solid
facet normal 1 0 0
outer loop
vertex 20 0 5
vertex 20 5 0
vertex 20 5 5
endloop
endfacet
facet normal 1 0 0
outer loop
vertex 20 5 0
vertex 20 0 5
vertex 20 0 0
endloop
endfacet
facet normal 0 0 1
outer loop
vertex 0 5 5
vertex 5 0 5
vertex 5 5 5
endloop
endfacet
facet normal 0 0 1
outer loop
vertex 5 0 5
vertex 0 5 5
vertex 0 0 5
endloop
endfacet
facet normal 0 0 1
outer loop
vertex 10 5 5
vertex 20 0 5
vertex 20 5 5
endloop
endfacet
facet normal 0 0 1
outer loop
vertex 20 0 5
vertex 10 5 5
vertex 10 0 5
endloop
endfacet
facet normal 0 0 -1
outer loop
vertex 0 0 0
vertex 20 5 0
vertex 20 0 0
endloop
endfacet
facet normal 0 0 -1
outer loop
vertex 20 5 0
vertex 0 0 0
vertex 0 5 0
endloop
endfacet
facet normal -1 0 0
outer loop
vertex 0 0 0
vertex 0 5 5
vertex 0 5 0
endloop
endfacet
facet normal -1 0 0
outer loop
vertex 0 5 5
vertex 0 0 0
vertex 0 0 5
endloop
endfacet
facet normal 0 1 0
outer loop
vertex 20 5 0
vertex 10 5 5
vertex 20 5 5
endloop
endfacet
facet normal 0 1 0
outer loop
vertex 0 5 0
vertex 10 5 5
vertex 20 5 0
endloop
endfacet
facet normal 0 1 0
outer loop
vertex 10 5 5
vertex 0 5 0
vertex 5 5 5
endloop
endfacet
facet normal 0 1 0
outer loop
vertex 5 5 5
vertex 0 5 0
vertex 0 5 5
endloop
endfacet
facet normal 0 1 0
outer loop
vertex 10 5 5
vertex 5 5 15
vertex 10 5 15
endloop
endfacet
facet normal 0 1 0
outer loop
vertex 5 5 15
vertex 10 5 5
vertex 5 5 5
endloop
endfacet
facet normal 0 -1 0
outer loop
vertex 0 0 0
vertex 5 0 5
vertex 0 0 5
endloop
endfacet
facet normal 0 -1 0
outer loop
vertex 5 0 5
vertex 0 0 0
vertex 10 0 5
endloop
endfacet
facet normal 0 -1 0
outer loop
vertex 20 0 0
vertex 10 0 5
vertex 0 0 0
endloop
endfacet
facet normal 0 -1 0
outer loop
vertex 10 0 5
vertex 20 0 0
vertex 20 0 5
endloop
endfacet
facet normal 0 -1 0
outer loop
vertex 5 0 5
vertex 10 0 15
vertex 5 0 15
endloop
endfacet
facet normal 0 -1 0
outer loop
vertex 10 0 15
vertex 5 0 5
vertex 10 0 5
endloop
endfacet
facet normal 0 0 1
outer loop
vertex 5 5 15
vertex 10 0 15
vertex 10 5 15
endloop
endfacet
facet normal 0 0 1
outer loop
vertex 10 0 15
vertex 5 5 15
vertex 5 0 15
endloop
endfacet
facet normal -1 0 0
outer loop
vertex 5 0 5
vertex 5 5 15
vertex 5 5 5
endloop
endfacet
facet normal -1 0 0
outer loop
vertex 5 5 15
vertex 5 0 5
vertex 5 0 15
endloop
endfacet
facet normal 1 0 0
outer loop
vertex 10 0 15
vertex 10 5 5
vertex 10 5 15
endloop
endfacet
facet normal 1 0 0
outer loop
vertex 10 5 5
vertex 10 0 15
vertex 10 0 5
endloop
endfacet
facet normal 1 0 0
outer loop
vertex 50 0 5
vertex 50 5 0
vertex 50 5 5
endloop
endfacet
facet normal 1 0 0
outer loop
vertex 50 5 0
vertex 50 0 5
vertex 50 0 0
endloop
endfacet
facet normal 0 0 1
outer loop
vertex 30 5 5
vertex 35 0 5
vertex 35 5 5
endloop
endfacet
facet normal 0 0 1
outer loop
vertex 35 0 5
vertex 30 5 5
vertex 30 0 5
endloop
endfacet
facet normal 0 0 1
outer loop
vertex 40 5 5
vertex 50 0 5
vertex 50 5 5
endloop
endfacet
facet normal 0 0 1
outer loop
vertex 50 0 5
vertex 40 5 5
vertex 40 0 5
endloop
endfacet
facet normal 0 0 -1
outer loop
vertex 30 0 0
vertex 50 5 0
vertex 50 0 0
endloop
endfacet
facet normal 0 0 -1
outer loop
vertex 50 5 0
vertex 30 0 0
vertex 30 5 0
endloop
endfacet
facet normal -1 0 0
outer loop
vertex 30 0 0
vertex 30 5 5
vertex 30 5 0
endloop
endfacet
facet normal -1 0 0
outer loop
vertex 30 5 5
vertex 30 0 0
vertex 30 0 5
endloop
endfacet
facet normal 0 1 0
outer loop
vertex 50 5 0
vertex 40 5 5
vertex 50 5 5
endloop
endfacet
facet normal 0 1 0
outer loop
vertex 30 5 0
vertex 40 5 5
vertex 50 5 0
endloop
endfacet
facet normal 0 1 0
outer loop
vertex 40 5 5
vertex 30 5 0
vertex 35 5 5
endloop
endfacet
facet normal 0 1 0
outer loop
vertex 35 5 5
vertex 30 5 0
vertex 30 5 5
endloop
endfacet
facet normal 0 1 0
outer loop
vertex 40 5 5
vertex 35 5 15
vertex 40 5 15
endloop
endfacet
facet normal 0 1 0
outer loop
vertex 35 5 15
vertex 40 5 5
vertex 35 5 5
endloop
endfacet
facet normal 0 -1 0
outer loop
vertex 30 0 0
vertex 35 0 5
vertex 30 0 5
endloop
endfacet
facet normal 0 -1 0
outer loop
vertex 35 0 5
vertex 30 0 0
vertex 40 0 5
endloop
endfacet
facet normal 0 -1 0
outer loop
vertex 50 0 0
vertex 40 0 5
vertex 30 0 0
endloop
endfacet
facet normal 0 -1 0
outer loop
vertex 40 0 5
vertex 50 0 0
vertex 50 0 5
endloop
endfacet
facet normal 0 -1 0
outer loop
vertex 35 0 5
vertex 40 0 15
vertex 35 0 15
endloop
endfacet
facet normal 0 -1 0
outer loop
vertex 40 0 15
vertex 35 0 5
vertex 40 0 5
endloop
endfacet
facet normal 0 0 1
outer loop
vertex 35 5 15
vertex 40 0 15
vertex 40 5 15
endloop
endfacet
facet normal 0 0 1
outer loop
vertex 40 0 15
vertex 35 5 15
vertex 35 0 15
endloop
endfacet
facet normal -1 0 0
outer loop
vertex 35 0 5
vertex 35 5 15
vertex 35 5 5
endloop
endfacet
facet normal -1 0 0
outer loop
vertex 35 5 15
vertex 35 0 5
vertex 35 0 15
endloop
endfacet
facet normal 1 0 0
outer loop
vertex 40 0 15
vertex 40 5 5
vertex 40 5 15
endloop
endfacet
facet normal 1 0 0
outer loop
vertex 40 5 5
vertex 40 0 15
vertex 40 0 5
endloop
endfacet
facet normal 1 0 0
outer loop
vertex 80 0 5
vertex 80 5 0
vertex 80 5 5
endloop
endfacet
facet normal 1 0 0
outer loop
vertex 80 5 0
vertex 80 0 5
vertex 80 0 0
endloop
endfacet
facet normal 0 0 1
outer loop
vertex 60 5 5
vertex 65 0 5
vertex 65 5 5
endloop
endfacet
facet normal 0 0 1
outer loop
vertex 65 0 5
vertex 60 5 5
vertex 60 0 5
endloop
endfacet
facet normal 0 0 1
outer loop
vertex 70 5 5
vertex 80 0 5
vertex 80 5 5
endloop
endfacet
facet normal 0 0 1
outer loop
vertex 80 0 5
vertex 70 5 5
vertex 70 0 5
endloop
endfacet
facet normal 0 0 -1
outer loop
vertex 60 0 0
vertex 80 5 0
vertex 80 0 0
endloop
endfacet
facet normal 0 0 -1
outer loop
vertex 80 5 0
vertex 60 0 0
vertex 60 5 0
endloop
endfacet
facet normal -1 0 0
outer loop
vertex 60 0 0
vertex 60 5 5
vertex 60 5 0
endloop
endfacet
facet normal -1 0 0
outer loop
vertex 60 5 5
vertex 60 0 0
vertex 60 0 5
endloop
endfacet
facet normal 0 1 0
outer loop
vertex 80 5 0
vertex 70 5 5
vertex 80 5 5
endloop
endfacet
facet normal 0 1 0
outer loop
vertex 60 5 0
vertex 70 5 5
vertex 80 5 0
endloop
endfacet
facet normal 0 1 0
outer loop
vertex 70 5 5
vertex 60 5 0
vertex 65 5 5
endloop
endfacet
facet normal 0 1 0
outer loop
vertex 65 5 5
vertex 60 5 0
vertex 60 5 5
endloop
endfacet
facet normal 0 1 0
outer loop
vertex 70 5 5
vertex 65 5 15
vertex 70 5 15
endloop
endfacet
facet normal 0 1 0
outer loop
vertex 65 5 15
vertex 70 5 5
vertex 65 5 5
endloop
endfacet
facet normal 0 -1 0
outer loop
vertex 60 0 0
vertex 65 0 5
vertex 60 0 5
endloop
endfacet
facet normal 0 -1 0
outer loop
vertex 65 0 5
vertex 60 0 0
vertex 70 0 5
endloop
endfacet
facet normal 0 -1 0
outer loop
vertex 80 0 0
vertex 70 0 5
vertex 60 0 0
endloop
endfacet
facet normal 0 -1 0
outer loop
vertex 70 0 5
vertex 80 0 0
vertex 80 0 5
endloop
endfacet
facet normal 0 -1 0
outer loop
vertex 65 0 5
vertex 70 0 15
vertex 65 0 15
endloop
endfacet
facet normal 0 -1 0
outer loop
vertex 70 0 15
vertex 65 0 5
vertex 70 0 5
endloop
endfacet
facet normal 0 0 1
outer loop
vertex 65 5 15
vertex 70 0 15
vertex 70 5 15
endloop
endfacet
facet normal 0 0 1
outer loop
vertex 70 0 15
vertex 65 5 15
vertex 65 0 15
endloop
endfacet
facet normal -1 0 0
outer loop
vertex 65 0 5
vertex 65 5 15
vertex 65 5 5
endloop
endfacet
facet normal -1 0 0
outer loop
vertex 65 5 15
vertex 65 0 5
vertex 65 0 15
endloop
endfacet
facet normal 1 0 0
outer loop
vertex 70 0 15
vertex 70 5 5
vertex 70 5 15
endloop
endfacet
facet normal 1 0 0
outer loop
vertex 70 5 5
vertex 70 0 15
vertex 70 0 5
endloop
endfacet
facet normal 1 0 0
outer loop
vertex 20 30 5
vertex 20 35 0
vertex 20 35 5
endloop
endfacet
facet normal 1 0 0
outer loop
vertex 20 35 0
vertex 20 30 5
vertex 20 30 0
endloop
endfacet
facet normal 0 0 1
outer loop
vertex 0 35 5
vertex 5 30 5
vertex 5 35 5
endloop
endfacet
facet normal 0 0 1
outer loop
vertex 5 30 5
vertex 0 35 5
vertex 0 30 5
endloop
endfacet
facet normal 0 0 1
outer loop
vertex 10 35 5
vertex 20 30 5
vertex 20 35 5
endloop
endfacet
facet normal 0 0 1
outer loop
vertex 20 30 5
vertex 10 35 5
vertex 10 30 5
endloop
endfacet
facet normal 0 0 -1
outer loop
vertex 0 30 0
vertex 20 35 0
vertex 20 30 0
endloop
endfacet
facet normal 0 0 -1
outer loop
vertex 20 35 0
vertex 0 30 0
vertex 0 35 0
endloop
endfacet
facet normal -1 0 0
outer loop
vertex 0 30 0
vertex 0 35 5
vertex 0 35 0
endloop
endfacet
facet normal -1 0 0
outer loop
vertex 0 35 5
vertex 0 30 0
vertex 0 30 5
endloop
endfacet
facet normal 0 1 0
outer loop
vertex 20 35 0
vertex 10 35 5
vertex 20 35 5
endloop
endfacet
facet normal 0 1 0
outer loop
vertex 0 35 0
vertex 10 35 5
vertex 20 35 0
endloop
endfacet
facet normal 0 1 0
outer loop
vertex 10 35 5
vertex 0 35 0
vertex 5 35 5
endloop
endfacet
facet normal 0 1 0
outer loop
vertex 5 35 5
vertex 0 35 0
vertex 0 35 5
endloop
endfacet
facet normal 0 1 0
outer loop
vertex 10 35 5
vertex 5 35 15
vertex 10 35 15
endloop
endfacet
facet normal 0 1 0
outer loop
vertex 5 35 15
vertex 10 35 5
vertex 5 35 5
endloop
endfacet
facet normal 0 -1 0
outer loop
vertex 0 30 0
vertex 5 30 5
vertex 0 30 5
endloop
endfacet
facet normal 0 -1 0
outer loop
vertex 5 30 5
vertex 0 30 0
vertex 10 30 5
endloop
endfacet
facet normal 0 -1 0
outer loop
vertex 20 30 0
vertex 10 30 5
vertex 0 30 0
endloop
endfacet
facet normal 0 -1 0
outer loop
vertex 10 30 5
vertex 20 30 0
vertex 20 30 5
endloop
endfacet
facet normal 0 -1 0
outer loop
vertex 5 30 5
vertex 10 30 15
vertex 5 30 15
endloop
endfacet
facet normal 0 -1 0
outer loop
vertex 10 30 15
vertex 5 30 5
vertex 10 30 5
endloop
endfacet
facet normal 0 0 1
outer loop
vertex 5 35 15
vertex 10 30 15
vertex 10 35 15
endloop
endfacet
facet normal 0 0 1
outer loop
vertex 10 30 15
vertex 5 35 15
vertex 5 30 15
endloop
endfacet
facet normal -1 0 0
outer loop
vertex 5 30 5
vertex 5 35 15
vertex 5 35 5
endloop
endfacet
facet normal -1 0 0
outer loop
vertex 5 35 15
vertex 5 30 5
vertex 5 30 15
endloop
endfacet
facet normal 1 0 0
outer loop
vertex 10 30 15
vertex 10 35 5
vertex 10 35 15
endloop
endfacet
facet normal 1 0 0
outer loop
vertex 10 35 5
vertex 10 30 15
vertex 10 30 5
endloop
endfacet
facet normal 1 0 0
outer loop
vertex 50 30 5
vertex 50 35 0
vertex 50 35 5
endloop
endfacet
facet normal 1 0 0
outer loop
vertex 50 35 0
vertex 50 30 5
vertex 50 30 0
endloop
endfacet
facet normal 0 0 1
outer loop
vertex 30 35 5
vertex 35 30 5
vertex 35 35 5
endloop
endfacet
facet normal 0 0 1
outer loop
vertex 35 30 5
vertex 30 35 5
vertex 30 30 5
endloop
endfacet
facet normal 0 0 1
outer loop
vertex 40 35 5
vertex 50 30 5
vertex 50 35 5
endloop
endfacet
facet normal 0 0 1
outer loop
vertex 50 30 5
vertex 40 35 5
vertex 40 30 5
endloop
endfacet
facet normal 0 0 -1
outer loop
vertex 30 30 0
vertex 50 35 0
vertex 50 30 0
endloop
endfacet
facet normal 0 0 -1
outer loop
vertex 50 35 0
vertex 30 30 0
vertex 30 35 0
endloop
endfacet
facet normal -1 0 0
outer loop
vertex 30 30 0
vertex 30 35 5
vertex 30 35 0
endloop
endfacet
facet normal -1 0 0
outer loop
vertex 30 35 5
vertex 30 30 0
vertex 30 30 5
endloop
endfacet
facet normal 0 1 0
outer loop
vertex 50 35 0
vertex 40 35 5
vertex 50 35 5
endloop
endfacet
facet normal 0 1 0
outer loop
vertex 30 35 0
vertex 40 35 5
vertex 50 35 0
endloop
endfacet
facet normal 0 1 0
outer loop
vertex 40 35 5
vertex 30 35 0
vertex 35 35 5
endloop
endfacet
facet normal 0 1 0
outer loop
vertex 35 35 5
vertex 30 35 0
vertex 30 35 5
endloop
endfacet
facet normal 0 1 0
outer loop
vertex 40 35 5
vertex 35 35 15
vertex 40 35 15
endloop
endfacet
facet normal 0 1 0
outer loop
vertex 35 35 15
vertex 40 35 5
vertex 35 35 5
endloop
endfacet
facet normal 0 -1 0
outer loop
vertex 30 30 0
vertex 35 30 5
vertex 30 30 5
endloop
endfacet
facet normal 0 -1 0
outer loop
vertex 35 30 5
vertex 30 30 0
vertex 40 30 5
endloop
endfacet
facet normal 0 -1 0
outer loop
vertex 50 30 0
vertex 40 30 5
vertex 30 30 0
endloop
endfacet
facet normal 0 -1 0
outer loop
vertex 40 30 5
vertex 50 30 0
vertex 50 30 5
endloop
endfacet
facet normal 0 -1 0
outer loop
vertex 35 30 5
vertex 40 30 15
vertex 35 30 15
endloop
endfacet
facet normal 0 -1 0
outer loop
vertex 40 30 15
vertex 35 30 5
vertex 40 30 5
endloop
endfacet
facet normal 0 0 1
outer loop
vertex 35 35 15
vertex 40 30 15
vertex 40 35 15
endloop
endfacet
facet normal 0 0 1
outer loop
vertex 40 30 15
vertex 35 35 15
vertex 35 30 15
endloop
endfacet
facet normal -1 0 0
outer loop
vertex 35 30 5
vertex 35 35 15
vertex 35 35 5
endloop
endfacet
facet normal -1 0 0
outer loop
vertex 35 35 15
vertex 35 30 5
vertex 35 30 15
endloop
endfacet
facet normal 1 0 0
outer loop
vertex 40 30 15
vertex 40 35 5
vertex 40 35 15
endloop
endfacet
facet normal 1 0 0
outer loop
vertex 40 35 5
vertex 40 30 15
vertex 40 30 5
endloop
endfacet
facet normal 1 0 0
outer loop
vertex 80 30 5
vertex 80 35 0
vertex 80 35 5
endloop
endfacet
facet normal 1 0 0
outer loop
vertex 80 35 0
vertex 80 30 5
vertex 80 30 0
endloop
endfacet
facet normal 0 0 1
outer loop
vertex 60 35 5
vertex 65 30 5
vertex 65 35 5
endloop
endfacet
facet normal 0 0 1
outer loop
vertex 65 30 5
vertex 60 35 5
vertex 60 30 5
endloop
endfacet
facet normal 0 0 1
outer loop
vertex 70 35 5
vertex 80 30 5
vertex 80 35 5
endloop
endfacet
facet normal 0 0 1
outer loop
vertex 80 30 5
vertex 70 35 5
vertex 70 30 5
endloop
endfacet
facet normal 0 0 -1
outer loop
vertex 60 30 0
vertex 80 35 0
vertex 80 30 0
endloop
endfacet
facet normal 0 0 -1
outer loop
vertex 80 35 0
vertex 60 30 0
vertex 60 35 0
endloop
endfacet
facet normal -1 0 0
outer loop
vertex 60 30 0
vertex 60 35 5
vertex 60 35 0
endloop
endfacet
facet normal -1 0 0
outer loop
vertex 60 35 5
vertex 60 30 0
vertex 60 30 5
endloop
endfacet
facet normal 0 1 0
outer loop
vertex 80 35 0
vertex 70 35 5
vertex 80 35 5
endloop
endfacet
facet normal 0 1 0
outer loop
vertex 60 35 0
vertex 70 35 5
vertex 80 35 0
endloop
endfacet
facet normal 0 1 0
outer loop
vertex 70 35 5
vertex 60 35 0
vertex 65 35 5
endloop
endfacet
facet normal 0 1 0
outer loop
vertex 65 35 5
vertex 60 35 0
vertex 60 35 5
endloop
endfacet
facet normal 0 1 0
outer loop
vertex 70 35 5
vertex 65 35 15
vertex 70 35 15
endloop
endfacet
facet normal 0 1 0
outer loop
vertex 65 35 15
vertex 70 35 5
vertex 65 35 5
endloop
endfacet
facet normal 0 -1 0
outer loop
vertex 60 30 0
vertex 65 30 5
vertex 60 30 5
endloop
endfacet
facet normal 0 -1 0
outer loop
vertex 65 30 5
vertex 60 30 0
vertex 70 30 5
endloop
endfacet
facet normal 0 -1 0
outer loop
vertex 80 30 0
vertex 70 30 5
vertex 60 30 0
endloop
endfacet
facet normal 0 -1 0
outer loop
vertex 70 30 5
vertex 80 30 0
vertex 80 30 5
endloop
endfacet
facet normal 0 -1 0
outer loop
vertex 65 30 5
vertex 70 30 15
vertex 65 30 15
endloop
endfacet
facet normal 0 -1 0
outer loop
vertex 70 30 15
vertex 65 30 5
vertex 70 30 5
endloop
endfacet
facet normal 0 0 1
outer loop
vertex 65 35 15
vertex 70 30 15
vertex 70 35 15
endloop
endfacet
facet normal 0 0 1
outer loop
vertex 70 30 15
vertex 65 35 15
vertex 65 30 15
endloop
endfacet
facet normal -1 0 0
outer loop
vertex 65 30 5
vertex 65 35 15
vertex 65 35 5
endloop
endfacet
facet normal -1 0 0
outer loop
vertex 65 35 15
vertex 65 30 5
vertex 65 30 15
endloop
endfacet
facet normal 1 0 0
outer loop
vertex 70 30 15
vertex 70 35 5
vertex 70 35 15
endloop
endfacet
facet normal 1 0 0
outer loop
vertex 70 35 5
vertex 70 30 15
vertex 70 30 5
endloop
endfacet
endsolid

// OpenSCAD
// Function to create a single angled connector
module angled_connector() {
    // Base dimensions for the connector
    connector_length = 20;
    connector_width = 5;
    connector_height = 5;
    angle_offset = 10;

    // Create the "L" shape
    union() {
        // Horizontal part
        cube([connector_length, connector_width, connector_height]);

        // Vertical part
        translate([connector_length - angle_offset, 0, connector_height])
        rotate([0, -90, 0])
        cube([connector_length - angle_offset, connector_width, connector_height]);
    }
}

// Position and render all six angled connectors
module model() {
    // Define positions for the six connectors
    positions = [
        [0, 0, 0],
        [30, 0, 0],
        [60, 0, 0],
        [0, 30, 0],
        [30, 30, 0],
        [60, 30, 0]
    ];

    // Render each connector at its respective position
    for (pos = positions) {
        translate(pos)
        angled_connector();
    }
}

// Render the model
model();
